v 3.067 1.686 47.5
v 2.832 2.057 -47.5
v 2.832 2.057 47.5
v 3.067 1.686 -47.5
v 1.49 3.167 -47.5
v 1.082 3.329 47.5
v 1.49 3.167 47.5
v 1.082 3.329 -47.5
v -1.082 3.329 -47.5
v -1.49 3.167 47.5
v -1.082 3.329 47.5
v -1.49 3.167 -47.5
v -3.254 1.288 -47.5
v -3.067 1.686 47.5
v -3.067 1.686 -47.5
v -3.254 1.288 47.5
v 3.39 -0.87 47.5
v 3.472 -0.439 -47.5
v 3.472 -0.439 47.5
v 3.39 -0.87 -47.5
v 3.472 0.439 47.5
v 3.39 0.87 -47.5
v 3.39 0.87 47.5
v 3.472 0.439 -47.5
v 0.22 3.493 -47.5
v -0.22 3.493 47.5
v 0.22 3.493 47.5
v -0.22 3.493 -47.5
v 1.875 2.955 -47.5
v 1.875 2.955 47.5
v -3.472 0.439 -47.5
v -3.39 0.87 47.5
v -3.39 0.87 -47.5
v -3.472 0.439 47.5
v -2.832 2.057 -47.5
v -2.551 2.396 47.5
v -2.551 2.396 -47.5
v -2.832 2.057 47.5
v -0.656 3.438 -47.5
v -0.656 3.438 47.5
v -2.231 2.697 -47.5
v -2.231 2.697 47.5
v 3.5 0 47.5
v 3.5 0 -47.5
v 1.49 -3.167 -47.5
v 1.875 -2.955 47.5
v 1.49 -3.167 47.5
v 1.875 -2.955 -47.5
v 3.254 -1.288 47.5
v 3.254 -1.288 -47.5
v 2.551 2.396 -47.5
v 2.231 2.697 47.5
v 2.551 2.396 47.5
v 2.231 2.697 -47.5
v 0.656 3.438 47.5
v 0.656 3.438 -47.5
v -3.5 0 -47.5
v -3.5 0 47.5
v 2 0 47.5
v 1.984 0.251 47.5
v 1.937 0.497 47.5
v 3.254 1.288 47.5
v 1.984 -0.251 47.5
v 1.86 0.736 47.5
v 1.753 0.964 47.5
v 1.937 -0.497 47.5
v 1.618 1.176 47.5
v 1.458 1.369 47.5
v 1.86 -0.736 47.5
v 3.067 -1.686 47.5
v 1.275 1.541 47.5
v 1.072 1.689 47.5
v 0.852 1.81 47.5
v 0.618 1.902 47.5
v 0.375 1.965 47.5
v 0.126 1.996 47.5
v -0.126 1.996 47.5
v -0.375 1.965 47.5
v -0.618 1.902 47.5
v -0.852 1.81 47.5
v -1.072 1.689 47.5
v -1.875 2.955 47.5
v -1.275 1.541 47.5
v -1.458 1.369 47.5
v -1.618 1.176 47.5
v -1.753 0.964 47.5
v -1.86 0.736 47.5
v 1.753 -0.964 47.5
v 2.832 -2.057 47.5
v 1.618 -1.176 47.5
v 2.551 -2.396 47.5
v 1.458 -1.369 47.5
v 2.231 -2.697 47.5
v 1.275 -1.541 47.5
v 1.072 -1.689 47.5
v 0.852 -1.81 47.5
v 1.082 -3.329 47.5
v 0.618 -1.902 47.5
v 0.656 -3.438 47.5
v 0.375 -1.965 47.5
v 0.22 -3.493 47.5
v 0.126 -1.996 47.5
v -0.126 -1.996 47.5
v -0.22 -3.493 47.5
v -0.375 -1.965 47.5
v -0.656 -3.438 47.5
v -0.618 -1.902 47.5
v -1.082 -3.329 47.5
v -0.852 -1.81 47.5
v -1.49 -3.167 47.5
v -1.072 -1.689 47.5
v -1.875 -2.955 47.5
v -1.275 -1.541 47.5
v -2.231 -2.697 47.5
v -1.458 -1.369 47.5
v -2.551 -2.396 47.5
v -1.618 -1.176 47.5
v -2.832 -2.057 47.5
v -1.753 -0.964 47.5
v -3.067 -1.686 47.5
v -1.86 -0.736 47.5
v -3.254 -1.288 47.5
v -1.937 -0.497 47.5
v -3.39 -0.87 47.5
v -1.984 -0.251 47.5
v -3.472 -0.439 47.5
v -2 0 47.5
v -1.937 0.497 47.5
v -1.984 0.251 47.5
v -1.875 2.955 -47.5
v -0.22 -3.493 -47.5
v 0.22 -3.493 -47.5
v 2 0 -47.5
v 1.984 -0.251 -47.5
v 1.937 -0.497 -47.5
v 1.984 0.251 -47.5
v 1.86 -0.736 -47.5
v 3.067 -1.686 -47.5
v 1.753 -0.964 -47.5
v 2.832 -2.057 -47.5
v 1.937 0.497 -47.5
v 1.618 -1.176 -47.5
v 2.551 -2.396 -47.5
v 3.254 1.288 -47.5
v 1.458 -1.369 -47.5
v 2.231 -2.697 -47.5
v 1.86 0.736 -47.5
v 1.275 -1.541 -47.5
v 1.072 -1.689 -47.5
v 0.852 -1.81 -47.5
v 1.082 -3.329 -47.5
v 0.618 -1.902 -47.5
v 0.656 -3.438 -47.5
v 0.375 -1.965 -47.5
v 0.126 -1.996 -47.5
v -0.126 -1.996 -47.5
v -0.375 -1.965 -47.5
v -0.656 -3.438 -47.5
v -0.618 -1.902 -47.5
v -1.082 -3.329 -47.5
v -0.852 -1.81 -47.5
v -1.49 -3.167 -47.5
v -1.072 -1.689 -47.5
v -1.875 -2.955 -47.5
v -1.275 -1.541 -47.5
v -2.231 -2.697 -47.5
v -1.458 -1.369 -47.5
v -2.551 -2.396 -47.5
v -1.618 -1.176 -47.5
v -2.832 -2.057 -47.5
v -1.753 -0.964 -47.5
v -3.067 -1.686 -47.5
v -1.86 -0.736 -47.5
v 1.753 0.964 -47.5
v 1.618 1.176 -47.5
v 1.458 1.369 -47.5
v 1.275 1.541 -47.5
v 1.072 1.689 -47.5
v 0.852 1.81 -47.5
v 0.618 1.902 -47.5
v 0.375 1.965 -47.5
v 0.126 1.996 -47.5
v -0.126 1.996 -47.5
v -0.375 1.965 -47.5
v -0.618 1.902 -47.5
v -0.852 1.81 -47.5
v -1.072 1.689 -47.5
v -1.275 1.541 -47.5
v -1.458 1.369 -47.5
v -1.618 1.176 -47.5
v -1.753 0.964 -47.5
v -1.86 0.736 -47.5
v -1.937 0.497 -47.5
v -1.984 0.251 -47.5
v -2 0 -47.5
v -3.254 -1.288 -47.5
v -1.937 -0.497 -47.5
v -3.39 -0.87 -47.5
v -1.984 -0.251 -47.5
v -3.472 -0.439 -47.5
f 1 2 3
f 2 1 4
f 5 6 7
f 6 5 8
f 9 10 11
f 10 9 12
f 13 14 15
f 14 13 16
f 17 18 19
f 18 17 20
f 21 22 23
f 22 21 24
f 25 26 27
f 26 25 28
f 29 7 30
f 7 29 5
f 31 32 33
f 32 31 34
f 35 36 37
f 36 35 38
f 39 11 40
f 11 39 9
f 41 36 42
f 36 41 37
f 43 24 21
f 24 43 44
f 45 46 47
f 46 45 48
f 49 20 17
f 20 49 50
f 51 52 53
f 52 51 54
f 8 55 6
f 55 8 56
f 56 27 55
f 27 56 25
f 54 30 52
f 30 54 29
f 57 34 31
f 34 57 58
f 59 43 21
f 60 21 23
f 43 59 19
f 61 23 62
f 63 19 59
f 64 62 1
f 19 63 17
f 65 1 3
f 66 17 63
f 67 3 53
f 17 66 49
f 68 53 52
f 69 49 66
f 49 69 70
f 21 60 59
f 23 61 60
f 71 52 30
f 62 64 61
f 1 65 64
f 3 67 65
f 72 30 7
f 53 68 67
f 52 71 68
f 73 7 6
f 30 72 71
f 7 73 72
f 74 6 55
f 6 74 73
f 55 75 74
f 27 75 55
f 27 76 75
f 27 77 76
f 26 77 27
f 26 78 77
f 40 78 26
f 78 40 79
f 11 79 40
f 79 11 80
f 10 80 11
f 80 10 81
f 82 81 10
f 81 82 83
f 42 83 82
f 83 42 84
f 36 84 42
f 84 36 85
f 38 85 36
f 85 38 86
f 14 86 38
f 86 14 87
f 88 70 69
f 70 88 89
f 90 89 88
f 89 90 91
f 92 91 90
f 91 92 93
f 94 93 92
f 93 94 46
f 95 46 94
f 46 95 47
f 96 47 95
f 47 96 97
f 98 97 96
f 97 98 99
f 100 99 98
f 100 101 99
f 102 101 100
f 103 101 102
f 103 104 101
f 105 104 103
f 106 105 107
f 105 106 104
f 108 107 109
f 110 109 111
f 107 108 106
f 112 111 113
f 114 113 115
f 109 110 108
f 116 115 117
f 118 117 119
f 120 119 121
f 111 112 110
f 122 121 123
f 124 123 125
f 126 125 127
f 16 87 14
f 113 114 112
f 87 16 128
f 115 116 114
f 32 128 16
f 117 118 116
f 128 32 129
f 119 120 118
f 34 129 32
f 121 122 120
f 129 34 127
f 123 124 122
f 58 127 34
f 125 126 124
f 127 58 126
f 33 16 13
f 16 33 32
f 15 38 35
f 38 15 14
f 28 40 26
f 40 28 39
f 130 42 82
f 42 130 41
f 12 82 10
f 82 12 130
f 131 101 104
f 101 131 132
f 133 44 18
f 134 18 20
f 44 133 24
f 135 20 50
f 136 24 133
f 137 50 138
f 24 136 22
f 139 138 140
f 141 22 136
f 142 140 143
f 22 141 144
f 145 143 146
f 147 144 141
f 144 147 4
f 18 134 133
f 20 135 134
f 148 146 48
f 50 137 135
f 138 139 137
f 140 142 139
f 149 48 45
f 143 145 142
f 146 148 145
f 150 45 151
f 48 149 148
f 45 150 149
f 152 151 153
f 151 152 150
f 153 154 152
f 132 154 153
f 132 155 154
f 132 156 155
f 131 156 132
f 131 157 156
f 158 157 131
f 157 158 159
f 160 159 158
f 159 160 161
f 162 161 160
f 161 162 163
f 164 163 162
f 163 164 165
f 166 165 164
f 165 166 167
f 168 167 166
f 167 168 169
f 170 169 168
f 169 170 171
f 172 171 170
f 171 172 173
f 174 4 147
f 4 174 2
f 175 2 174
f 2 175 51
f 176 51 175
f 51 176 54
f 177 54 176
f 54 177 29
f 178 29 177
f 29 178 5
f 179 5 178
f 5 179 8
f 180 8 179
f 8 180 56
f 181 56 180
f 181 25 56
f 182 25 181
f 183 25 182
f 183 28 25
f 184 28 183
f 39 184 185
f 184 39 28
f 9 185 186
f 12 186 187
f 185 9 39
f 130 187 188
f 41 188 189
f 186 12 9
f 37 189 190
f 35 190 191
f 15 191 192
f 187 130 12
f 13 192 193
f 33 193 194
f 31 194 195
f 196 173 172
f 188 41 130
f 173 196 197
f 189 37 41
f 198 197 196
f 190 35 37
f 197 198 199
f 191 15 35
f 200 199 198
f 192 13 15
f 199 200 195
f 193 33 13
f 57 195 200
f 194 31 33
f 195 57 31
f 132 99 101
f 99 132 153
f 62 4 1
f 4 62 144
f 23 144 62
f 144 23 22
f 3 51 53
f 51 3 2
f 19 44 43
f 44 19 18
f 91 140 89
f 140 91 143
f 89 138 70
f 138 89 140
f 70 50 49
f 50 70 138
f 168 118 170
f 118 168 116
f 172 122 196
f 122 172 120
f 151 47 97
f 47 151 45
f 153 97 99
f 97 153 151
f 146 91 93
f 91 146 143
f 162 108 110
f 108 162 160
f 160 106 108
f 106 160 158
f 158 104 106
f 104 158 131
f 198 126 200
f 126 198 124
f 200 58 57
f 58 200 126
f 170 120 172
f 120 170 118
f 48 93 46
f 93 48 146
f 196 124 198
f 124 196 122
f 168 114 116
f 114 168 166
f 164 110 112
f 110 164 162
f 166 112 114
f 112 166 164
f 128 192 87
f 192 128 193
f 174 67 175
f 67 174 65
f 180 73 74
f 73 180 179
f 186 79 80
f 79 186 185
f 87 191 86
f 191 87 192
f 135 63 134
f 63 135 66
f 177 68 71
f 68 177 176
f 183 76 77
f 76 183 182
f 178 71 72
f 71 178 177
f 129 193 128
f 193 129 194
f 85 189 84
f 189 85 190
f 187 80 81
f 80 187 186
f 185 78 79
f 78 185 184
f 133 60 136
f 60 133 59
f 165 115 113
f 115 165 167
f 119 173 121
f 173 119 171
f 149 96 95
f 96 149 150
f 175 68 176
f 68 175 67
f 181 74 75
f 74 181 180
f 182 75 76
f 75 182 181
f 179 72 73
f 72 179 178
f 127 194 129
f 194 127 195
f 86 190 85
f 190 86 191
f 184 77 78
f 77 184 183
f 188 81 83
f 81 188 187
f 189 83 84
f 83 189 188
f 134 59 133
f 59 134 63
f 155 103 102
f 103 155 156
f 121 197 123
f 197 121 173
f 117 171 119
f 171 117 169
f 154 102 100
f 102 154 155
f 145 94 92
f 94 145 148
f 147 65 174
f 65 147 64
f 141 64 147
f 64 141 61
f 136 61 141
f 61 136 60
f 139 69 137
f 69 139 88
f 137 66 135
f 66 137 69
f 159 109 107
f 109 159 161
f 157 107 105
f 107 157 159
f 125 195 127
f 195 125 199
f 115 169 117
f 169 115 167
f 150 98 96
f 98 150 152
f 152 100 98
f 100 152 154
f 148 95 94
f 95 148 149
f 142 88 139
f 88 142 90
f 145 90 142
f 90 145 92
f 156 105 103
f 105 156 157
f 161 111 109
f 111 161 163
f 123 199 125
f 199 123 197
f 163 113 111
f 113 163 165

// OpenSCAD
$fn = 50;


difference() {
	union() {
		translate(v = [0, 0, -47.5000000000]) {
			cylinder(h = 95, r = 3.5000000000);
		}
	}
	union() {
		translate(v = [0, 0, -100.0000000000]) {
			cylinder(h = 200, r = 2);
		}
	}
}
